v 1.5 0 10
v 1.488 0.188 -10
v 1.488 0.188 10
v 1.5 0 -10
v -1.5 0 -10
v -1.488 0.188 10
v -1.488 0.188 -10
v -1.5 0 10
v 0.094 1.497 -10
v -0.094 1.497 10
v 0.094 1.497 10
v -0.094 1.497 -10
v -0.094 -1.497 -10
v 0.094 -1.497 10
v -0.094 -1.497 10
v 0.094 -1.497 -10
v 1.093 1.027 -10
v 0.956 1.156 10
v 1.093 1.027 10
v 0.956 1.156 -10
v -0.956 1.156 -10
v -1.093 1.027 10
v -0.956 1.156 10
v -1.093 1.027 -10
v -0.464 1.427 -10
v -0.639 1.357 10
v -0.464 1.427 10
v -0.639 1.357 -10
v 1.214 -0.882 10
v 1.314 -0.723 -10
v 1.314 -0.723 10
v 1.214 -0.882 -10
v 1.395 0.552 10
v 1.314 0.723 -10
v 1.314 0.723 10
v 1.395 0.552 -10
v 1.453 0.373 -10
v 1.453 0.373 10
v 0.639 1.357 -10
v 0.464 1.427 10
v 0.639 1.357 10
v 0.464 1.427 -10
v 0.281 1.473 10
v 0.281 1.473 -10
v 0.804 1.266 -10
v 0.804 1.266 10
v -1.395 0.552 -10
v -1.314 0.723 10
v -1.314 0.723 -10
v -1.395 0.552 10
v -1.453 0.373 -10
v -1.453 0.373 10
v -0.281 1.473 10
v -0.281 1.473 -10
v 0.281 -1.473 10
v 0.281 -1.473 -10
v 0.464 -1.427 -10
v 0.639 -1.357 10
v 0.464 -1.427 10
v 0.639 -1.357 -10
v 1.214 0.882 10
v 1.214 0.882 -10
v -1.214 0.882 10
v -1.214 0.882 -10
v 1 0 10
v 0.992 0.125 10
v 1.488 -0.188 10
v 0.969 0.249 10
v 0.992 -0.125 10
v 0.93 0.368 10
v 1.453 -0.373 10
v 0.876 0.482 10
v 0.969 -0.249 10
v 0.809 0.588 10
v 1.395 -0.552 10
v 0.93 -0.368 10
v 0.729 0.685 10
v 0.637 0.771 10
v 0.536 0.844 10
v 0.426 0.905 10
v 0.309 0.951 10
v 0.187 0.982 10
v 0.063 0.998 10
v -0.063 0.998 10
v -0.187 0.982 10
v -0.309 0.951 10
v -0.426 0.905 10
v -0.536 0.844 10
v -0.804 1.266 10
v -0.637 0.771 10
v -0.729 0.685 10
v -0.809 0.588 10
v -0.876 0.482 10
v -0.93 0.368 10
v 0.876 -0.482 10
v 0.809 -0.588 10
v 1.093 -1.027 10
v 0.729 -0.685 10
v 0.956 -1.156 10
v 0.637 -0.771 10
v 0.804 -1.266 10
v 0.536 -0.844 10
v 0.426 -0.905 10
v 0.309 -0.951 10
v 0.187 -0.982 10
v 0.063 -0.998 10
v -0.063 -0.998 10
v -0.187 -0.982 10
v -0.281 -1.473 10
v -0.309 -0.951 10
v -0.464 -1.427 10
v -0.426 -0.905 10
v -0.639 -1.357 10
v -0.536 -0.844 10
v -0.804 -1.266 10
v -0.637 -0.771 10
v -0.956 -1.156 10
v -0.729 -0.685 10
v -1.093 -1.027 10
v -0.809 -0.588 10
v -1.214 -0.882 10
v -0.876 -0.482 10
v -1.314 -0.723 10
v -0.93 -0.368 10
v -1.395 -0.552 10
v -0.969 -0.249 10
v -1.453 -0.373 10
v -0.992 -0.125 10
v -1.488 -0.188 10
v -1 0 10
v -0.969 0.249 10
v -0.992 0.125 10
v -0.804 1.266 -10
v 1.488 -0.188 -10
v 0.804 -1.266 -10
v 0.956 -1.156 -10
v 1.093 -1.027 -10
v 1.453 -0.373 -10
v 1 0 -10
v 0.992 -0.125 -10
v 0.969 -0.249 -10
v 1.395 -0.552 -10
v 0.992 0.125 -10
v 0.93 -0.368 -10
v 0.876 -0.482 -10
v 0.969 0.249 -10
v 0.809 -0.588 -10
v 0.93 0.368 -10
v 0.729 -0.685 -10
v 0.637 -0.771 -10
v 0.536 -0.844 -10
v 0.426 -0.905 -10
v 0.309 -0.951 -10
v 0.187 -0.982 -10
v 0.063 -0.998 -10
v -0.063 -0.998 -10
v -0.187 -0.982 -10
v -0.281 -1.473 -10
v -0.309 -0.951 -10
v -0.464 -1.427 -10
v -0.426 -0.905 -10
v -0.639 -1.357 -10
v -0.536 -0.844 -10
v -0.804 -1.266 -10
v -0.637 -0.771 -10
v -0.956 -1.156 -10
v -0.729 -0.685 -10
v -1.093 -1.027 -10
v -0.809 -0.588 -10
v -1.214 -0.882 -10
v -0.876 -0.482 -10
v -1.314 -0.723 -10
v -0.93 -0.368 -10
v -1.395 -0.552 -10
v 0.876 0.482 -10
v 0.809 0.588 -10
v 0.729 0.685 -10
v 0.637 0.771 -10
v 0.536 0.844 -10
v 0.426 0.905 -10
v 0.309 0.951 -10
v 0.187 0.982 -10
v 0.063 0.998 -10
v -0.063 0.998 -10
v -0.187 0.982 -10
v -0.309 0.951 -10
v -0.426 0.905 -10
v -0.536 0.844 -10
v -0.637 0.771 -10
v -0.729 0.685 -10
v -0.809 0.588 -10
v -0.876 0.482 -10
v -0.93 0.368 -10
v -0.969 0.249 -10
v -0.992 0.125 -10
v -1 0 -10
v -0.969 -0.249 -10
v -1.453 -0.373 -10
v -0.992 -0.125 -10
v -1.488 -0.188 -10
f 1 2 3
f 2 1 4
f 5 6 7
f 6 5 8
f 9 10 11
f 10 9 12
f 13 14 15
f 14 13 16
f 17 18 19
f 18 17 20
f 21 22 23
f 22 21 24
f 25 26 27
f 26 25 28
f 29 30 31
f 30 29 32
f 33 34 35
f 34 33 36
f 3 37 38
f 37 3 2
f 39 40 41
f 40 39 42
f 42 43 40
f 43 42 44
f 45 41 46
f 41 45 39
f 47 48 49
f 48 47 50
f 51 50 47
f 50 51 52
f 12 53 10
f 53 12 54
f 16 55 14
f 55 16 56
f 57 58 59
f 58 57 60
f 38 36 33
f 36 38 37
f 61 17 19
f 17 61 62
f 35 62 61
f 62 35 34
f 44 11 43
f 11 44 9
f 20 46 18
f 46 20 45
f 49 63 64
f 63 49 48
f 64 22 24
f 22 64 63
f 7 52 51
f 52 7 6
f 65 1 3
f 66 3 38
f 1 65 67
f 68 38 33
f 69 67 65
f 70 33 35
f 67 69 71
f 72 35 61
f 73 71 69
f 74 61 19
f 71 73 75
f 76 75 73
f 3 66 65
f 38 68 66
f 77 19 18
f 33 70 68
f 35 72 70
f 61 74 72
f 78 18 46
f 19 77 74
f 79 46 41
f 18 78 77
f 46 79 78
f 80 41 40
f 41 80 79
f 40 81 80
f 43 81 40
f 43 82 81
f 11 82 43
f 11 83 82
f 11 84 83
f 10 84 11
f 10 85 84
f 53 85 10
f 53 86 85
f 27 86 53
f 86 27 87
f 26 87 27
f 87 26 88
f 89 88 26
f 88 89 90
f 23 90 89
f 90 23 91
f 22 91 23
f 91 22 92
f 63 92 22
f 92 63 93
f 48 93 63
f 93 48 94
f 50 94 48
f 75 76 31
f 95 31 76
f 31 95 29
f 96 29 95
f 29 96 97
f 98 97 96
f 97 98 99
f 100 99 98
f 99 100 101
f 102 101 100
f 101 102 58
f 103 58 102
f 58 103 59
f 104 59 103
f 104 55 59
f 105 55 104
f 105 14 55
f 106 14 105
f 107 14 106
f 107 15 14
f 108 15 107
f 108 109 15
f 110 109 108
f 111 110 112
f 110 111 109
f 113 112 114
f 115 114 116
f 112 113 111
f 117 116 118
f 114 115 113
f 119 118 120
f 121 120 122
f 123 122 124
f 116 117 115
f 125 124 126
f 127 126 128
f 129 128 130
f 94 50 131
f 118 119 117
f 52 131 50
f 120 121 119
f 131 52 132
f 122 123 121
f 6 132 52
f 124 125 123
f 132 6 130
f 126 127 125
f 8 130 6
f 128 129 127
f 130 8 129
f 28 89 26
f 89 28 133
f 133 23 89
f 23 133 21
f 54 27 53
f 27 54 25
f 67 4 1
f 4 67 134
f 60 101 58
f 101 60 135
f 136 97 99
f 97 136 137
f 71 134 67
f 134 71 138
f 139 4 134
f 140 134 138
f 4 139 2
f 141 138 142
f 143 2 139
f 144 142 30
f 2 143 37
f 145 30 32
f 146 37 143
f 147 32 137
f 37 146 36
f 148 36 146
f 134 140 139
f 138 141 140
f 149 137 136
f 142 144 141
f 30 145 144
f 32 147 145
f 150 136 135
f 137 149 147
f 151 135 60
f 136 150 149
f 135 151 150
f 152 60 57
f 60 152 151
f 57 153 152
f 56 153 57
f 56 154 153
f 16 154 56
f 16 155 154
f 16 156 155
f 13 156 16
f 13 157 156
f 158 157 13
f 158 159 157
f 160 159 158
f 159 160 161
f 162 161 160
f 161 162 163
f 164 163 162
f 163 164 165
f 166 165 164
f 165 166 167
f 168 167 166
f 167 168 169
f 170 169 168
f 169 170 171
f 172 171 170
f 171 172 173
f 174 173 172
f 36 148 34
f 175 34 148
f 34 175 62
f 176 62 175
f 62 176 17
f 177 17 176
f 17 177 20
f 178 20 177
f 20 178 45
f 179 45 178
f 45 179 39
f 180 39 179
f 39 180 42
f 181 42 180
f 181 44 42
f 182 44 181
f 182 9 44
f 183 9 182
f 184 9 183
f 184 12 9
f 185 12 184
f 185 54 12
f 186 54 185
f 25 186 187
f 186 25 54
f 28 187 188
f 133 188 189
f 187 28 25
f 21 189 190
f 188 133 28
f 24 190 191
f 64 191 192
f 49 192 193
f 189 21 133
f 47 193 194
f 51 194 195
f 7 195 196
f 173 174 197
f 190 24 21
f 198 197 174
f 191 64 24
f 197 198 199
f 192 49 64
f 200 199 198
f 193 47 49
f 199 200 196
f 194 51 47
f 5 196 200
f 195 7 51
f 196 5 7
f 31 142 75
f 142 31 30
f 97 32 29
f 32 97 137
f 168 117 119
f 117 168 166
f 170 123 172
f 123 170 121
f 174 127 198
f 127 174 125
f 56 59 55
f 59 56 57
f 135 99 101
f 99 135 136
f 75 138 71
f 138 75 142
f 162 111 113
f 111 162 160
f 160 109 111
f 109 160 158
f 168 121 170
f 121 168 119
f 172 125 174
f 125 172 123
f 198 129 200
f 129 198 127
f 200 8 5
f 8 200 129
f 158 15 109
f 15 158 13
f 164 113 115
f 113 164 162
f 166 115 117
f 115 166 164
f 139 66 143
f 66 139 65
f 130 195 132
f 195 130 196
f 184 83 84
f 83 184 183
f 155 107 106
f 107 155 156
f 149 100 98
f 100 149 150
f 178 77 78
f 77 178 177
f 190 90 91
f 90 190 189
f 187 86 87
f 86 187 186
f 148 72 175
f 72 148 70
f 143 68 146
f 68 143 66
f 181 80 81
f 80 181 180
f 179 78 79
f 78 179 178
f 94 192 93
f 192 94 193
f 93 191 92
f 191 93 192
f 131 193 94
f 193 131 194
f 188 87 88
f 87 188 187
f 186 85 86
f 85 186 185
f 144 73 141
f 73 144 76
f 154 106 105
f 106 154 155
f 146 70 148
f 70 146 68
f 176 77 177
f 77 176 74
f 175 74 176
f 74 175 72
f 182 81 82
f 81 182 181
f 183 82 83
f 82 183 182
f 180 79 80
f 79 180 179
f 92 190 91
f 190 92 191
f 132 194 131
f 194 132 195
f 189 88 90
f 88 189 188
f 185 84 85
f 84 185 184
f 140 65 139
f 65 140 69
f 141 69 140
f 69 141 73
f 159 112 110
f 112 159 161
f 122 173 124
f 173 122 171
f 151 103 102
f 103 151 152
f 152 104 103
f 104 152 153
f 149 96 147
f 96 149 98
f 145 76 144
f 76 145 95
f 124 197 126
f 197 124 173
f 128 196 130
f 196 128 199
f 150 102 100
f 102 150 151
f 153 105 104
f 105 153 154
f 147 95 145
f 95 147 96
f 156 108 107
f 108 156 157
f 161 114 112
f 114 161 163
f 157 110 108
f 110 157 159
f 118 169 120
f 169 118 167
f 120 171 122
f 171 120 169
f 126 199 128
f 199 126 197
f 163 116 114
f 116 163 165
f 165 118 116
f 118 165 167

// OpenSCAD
$fn = 50;


difference() {
	union() {
		translate(v = [0, 0, -10.0000000000]) {
			cylinder(h = 20, r = 1.5000000000);
		}
	}
	union() {
		translate(v = [0, 0, -100.0000000000]) {
			cylinder(h = 200, r = 1.0000000000);
		}
	}
}
